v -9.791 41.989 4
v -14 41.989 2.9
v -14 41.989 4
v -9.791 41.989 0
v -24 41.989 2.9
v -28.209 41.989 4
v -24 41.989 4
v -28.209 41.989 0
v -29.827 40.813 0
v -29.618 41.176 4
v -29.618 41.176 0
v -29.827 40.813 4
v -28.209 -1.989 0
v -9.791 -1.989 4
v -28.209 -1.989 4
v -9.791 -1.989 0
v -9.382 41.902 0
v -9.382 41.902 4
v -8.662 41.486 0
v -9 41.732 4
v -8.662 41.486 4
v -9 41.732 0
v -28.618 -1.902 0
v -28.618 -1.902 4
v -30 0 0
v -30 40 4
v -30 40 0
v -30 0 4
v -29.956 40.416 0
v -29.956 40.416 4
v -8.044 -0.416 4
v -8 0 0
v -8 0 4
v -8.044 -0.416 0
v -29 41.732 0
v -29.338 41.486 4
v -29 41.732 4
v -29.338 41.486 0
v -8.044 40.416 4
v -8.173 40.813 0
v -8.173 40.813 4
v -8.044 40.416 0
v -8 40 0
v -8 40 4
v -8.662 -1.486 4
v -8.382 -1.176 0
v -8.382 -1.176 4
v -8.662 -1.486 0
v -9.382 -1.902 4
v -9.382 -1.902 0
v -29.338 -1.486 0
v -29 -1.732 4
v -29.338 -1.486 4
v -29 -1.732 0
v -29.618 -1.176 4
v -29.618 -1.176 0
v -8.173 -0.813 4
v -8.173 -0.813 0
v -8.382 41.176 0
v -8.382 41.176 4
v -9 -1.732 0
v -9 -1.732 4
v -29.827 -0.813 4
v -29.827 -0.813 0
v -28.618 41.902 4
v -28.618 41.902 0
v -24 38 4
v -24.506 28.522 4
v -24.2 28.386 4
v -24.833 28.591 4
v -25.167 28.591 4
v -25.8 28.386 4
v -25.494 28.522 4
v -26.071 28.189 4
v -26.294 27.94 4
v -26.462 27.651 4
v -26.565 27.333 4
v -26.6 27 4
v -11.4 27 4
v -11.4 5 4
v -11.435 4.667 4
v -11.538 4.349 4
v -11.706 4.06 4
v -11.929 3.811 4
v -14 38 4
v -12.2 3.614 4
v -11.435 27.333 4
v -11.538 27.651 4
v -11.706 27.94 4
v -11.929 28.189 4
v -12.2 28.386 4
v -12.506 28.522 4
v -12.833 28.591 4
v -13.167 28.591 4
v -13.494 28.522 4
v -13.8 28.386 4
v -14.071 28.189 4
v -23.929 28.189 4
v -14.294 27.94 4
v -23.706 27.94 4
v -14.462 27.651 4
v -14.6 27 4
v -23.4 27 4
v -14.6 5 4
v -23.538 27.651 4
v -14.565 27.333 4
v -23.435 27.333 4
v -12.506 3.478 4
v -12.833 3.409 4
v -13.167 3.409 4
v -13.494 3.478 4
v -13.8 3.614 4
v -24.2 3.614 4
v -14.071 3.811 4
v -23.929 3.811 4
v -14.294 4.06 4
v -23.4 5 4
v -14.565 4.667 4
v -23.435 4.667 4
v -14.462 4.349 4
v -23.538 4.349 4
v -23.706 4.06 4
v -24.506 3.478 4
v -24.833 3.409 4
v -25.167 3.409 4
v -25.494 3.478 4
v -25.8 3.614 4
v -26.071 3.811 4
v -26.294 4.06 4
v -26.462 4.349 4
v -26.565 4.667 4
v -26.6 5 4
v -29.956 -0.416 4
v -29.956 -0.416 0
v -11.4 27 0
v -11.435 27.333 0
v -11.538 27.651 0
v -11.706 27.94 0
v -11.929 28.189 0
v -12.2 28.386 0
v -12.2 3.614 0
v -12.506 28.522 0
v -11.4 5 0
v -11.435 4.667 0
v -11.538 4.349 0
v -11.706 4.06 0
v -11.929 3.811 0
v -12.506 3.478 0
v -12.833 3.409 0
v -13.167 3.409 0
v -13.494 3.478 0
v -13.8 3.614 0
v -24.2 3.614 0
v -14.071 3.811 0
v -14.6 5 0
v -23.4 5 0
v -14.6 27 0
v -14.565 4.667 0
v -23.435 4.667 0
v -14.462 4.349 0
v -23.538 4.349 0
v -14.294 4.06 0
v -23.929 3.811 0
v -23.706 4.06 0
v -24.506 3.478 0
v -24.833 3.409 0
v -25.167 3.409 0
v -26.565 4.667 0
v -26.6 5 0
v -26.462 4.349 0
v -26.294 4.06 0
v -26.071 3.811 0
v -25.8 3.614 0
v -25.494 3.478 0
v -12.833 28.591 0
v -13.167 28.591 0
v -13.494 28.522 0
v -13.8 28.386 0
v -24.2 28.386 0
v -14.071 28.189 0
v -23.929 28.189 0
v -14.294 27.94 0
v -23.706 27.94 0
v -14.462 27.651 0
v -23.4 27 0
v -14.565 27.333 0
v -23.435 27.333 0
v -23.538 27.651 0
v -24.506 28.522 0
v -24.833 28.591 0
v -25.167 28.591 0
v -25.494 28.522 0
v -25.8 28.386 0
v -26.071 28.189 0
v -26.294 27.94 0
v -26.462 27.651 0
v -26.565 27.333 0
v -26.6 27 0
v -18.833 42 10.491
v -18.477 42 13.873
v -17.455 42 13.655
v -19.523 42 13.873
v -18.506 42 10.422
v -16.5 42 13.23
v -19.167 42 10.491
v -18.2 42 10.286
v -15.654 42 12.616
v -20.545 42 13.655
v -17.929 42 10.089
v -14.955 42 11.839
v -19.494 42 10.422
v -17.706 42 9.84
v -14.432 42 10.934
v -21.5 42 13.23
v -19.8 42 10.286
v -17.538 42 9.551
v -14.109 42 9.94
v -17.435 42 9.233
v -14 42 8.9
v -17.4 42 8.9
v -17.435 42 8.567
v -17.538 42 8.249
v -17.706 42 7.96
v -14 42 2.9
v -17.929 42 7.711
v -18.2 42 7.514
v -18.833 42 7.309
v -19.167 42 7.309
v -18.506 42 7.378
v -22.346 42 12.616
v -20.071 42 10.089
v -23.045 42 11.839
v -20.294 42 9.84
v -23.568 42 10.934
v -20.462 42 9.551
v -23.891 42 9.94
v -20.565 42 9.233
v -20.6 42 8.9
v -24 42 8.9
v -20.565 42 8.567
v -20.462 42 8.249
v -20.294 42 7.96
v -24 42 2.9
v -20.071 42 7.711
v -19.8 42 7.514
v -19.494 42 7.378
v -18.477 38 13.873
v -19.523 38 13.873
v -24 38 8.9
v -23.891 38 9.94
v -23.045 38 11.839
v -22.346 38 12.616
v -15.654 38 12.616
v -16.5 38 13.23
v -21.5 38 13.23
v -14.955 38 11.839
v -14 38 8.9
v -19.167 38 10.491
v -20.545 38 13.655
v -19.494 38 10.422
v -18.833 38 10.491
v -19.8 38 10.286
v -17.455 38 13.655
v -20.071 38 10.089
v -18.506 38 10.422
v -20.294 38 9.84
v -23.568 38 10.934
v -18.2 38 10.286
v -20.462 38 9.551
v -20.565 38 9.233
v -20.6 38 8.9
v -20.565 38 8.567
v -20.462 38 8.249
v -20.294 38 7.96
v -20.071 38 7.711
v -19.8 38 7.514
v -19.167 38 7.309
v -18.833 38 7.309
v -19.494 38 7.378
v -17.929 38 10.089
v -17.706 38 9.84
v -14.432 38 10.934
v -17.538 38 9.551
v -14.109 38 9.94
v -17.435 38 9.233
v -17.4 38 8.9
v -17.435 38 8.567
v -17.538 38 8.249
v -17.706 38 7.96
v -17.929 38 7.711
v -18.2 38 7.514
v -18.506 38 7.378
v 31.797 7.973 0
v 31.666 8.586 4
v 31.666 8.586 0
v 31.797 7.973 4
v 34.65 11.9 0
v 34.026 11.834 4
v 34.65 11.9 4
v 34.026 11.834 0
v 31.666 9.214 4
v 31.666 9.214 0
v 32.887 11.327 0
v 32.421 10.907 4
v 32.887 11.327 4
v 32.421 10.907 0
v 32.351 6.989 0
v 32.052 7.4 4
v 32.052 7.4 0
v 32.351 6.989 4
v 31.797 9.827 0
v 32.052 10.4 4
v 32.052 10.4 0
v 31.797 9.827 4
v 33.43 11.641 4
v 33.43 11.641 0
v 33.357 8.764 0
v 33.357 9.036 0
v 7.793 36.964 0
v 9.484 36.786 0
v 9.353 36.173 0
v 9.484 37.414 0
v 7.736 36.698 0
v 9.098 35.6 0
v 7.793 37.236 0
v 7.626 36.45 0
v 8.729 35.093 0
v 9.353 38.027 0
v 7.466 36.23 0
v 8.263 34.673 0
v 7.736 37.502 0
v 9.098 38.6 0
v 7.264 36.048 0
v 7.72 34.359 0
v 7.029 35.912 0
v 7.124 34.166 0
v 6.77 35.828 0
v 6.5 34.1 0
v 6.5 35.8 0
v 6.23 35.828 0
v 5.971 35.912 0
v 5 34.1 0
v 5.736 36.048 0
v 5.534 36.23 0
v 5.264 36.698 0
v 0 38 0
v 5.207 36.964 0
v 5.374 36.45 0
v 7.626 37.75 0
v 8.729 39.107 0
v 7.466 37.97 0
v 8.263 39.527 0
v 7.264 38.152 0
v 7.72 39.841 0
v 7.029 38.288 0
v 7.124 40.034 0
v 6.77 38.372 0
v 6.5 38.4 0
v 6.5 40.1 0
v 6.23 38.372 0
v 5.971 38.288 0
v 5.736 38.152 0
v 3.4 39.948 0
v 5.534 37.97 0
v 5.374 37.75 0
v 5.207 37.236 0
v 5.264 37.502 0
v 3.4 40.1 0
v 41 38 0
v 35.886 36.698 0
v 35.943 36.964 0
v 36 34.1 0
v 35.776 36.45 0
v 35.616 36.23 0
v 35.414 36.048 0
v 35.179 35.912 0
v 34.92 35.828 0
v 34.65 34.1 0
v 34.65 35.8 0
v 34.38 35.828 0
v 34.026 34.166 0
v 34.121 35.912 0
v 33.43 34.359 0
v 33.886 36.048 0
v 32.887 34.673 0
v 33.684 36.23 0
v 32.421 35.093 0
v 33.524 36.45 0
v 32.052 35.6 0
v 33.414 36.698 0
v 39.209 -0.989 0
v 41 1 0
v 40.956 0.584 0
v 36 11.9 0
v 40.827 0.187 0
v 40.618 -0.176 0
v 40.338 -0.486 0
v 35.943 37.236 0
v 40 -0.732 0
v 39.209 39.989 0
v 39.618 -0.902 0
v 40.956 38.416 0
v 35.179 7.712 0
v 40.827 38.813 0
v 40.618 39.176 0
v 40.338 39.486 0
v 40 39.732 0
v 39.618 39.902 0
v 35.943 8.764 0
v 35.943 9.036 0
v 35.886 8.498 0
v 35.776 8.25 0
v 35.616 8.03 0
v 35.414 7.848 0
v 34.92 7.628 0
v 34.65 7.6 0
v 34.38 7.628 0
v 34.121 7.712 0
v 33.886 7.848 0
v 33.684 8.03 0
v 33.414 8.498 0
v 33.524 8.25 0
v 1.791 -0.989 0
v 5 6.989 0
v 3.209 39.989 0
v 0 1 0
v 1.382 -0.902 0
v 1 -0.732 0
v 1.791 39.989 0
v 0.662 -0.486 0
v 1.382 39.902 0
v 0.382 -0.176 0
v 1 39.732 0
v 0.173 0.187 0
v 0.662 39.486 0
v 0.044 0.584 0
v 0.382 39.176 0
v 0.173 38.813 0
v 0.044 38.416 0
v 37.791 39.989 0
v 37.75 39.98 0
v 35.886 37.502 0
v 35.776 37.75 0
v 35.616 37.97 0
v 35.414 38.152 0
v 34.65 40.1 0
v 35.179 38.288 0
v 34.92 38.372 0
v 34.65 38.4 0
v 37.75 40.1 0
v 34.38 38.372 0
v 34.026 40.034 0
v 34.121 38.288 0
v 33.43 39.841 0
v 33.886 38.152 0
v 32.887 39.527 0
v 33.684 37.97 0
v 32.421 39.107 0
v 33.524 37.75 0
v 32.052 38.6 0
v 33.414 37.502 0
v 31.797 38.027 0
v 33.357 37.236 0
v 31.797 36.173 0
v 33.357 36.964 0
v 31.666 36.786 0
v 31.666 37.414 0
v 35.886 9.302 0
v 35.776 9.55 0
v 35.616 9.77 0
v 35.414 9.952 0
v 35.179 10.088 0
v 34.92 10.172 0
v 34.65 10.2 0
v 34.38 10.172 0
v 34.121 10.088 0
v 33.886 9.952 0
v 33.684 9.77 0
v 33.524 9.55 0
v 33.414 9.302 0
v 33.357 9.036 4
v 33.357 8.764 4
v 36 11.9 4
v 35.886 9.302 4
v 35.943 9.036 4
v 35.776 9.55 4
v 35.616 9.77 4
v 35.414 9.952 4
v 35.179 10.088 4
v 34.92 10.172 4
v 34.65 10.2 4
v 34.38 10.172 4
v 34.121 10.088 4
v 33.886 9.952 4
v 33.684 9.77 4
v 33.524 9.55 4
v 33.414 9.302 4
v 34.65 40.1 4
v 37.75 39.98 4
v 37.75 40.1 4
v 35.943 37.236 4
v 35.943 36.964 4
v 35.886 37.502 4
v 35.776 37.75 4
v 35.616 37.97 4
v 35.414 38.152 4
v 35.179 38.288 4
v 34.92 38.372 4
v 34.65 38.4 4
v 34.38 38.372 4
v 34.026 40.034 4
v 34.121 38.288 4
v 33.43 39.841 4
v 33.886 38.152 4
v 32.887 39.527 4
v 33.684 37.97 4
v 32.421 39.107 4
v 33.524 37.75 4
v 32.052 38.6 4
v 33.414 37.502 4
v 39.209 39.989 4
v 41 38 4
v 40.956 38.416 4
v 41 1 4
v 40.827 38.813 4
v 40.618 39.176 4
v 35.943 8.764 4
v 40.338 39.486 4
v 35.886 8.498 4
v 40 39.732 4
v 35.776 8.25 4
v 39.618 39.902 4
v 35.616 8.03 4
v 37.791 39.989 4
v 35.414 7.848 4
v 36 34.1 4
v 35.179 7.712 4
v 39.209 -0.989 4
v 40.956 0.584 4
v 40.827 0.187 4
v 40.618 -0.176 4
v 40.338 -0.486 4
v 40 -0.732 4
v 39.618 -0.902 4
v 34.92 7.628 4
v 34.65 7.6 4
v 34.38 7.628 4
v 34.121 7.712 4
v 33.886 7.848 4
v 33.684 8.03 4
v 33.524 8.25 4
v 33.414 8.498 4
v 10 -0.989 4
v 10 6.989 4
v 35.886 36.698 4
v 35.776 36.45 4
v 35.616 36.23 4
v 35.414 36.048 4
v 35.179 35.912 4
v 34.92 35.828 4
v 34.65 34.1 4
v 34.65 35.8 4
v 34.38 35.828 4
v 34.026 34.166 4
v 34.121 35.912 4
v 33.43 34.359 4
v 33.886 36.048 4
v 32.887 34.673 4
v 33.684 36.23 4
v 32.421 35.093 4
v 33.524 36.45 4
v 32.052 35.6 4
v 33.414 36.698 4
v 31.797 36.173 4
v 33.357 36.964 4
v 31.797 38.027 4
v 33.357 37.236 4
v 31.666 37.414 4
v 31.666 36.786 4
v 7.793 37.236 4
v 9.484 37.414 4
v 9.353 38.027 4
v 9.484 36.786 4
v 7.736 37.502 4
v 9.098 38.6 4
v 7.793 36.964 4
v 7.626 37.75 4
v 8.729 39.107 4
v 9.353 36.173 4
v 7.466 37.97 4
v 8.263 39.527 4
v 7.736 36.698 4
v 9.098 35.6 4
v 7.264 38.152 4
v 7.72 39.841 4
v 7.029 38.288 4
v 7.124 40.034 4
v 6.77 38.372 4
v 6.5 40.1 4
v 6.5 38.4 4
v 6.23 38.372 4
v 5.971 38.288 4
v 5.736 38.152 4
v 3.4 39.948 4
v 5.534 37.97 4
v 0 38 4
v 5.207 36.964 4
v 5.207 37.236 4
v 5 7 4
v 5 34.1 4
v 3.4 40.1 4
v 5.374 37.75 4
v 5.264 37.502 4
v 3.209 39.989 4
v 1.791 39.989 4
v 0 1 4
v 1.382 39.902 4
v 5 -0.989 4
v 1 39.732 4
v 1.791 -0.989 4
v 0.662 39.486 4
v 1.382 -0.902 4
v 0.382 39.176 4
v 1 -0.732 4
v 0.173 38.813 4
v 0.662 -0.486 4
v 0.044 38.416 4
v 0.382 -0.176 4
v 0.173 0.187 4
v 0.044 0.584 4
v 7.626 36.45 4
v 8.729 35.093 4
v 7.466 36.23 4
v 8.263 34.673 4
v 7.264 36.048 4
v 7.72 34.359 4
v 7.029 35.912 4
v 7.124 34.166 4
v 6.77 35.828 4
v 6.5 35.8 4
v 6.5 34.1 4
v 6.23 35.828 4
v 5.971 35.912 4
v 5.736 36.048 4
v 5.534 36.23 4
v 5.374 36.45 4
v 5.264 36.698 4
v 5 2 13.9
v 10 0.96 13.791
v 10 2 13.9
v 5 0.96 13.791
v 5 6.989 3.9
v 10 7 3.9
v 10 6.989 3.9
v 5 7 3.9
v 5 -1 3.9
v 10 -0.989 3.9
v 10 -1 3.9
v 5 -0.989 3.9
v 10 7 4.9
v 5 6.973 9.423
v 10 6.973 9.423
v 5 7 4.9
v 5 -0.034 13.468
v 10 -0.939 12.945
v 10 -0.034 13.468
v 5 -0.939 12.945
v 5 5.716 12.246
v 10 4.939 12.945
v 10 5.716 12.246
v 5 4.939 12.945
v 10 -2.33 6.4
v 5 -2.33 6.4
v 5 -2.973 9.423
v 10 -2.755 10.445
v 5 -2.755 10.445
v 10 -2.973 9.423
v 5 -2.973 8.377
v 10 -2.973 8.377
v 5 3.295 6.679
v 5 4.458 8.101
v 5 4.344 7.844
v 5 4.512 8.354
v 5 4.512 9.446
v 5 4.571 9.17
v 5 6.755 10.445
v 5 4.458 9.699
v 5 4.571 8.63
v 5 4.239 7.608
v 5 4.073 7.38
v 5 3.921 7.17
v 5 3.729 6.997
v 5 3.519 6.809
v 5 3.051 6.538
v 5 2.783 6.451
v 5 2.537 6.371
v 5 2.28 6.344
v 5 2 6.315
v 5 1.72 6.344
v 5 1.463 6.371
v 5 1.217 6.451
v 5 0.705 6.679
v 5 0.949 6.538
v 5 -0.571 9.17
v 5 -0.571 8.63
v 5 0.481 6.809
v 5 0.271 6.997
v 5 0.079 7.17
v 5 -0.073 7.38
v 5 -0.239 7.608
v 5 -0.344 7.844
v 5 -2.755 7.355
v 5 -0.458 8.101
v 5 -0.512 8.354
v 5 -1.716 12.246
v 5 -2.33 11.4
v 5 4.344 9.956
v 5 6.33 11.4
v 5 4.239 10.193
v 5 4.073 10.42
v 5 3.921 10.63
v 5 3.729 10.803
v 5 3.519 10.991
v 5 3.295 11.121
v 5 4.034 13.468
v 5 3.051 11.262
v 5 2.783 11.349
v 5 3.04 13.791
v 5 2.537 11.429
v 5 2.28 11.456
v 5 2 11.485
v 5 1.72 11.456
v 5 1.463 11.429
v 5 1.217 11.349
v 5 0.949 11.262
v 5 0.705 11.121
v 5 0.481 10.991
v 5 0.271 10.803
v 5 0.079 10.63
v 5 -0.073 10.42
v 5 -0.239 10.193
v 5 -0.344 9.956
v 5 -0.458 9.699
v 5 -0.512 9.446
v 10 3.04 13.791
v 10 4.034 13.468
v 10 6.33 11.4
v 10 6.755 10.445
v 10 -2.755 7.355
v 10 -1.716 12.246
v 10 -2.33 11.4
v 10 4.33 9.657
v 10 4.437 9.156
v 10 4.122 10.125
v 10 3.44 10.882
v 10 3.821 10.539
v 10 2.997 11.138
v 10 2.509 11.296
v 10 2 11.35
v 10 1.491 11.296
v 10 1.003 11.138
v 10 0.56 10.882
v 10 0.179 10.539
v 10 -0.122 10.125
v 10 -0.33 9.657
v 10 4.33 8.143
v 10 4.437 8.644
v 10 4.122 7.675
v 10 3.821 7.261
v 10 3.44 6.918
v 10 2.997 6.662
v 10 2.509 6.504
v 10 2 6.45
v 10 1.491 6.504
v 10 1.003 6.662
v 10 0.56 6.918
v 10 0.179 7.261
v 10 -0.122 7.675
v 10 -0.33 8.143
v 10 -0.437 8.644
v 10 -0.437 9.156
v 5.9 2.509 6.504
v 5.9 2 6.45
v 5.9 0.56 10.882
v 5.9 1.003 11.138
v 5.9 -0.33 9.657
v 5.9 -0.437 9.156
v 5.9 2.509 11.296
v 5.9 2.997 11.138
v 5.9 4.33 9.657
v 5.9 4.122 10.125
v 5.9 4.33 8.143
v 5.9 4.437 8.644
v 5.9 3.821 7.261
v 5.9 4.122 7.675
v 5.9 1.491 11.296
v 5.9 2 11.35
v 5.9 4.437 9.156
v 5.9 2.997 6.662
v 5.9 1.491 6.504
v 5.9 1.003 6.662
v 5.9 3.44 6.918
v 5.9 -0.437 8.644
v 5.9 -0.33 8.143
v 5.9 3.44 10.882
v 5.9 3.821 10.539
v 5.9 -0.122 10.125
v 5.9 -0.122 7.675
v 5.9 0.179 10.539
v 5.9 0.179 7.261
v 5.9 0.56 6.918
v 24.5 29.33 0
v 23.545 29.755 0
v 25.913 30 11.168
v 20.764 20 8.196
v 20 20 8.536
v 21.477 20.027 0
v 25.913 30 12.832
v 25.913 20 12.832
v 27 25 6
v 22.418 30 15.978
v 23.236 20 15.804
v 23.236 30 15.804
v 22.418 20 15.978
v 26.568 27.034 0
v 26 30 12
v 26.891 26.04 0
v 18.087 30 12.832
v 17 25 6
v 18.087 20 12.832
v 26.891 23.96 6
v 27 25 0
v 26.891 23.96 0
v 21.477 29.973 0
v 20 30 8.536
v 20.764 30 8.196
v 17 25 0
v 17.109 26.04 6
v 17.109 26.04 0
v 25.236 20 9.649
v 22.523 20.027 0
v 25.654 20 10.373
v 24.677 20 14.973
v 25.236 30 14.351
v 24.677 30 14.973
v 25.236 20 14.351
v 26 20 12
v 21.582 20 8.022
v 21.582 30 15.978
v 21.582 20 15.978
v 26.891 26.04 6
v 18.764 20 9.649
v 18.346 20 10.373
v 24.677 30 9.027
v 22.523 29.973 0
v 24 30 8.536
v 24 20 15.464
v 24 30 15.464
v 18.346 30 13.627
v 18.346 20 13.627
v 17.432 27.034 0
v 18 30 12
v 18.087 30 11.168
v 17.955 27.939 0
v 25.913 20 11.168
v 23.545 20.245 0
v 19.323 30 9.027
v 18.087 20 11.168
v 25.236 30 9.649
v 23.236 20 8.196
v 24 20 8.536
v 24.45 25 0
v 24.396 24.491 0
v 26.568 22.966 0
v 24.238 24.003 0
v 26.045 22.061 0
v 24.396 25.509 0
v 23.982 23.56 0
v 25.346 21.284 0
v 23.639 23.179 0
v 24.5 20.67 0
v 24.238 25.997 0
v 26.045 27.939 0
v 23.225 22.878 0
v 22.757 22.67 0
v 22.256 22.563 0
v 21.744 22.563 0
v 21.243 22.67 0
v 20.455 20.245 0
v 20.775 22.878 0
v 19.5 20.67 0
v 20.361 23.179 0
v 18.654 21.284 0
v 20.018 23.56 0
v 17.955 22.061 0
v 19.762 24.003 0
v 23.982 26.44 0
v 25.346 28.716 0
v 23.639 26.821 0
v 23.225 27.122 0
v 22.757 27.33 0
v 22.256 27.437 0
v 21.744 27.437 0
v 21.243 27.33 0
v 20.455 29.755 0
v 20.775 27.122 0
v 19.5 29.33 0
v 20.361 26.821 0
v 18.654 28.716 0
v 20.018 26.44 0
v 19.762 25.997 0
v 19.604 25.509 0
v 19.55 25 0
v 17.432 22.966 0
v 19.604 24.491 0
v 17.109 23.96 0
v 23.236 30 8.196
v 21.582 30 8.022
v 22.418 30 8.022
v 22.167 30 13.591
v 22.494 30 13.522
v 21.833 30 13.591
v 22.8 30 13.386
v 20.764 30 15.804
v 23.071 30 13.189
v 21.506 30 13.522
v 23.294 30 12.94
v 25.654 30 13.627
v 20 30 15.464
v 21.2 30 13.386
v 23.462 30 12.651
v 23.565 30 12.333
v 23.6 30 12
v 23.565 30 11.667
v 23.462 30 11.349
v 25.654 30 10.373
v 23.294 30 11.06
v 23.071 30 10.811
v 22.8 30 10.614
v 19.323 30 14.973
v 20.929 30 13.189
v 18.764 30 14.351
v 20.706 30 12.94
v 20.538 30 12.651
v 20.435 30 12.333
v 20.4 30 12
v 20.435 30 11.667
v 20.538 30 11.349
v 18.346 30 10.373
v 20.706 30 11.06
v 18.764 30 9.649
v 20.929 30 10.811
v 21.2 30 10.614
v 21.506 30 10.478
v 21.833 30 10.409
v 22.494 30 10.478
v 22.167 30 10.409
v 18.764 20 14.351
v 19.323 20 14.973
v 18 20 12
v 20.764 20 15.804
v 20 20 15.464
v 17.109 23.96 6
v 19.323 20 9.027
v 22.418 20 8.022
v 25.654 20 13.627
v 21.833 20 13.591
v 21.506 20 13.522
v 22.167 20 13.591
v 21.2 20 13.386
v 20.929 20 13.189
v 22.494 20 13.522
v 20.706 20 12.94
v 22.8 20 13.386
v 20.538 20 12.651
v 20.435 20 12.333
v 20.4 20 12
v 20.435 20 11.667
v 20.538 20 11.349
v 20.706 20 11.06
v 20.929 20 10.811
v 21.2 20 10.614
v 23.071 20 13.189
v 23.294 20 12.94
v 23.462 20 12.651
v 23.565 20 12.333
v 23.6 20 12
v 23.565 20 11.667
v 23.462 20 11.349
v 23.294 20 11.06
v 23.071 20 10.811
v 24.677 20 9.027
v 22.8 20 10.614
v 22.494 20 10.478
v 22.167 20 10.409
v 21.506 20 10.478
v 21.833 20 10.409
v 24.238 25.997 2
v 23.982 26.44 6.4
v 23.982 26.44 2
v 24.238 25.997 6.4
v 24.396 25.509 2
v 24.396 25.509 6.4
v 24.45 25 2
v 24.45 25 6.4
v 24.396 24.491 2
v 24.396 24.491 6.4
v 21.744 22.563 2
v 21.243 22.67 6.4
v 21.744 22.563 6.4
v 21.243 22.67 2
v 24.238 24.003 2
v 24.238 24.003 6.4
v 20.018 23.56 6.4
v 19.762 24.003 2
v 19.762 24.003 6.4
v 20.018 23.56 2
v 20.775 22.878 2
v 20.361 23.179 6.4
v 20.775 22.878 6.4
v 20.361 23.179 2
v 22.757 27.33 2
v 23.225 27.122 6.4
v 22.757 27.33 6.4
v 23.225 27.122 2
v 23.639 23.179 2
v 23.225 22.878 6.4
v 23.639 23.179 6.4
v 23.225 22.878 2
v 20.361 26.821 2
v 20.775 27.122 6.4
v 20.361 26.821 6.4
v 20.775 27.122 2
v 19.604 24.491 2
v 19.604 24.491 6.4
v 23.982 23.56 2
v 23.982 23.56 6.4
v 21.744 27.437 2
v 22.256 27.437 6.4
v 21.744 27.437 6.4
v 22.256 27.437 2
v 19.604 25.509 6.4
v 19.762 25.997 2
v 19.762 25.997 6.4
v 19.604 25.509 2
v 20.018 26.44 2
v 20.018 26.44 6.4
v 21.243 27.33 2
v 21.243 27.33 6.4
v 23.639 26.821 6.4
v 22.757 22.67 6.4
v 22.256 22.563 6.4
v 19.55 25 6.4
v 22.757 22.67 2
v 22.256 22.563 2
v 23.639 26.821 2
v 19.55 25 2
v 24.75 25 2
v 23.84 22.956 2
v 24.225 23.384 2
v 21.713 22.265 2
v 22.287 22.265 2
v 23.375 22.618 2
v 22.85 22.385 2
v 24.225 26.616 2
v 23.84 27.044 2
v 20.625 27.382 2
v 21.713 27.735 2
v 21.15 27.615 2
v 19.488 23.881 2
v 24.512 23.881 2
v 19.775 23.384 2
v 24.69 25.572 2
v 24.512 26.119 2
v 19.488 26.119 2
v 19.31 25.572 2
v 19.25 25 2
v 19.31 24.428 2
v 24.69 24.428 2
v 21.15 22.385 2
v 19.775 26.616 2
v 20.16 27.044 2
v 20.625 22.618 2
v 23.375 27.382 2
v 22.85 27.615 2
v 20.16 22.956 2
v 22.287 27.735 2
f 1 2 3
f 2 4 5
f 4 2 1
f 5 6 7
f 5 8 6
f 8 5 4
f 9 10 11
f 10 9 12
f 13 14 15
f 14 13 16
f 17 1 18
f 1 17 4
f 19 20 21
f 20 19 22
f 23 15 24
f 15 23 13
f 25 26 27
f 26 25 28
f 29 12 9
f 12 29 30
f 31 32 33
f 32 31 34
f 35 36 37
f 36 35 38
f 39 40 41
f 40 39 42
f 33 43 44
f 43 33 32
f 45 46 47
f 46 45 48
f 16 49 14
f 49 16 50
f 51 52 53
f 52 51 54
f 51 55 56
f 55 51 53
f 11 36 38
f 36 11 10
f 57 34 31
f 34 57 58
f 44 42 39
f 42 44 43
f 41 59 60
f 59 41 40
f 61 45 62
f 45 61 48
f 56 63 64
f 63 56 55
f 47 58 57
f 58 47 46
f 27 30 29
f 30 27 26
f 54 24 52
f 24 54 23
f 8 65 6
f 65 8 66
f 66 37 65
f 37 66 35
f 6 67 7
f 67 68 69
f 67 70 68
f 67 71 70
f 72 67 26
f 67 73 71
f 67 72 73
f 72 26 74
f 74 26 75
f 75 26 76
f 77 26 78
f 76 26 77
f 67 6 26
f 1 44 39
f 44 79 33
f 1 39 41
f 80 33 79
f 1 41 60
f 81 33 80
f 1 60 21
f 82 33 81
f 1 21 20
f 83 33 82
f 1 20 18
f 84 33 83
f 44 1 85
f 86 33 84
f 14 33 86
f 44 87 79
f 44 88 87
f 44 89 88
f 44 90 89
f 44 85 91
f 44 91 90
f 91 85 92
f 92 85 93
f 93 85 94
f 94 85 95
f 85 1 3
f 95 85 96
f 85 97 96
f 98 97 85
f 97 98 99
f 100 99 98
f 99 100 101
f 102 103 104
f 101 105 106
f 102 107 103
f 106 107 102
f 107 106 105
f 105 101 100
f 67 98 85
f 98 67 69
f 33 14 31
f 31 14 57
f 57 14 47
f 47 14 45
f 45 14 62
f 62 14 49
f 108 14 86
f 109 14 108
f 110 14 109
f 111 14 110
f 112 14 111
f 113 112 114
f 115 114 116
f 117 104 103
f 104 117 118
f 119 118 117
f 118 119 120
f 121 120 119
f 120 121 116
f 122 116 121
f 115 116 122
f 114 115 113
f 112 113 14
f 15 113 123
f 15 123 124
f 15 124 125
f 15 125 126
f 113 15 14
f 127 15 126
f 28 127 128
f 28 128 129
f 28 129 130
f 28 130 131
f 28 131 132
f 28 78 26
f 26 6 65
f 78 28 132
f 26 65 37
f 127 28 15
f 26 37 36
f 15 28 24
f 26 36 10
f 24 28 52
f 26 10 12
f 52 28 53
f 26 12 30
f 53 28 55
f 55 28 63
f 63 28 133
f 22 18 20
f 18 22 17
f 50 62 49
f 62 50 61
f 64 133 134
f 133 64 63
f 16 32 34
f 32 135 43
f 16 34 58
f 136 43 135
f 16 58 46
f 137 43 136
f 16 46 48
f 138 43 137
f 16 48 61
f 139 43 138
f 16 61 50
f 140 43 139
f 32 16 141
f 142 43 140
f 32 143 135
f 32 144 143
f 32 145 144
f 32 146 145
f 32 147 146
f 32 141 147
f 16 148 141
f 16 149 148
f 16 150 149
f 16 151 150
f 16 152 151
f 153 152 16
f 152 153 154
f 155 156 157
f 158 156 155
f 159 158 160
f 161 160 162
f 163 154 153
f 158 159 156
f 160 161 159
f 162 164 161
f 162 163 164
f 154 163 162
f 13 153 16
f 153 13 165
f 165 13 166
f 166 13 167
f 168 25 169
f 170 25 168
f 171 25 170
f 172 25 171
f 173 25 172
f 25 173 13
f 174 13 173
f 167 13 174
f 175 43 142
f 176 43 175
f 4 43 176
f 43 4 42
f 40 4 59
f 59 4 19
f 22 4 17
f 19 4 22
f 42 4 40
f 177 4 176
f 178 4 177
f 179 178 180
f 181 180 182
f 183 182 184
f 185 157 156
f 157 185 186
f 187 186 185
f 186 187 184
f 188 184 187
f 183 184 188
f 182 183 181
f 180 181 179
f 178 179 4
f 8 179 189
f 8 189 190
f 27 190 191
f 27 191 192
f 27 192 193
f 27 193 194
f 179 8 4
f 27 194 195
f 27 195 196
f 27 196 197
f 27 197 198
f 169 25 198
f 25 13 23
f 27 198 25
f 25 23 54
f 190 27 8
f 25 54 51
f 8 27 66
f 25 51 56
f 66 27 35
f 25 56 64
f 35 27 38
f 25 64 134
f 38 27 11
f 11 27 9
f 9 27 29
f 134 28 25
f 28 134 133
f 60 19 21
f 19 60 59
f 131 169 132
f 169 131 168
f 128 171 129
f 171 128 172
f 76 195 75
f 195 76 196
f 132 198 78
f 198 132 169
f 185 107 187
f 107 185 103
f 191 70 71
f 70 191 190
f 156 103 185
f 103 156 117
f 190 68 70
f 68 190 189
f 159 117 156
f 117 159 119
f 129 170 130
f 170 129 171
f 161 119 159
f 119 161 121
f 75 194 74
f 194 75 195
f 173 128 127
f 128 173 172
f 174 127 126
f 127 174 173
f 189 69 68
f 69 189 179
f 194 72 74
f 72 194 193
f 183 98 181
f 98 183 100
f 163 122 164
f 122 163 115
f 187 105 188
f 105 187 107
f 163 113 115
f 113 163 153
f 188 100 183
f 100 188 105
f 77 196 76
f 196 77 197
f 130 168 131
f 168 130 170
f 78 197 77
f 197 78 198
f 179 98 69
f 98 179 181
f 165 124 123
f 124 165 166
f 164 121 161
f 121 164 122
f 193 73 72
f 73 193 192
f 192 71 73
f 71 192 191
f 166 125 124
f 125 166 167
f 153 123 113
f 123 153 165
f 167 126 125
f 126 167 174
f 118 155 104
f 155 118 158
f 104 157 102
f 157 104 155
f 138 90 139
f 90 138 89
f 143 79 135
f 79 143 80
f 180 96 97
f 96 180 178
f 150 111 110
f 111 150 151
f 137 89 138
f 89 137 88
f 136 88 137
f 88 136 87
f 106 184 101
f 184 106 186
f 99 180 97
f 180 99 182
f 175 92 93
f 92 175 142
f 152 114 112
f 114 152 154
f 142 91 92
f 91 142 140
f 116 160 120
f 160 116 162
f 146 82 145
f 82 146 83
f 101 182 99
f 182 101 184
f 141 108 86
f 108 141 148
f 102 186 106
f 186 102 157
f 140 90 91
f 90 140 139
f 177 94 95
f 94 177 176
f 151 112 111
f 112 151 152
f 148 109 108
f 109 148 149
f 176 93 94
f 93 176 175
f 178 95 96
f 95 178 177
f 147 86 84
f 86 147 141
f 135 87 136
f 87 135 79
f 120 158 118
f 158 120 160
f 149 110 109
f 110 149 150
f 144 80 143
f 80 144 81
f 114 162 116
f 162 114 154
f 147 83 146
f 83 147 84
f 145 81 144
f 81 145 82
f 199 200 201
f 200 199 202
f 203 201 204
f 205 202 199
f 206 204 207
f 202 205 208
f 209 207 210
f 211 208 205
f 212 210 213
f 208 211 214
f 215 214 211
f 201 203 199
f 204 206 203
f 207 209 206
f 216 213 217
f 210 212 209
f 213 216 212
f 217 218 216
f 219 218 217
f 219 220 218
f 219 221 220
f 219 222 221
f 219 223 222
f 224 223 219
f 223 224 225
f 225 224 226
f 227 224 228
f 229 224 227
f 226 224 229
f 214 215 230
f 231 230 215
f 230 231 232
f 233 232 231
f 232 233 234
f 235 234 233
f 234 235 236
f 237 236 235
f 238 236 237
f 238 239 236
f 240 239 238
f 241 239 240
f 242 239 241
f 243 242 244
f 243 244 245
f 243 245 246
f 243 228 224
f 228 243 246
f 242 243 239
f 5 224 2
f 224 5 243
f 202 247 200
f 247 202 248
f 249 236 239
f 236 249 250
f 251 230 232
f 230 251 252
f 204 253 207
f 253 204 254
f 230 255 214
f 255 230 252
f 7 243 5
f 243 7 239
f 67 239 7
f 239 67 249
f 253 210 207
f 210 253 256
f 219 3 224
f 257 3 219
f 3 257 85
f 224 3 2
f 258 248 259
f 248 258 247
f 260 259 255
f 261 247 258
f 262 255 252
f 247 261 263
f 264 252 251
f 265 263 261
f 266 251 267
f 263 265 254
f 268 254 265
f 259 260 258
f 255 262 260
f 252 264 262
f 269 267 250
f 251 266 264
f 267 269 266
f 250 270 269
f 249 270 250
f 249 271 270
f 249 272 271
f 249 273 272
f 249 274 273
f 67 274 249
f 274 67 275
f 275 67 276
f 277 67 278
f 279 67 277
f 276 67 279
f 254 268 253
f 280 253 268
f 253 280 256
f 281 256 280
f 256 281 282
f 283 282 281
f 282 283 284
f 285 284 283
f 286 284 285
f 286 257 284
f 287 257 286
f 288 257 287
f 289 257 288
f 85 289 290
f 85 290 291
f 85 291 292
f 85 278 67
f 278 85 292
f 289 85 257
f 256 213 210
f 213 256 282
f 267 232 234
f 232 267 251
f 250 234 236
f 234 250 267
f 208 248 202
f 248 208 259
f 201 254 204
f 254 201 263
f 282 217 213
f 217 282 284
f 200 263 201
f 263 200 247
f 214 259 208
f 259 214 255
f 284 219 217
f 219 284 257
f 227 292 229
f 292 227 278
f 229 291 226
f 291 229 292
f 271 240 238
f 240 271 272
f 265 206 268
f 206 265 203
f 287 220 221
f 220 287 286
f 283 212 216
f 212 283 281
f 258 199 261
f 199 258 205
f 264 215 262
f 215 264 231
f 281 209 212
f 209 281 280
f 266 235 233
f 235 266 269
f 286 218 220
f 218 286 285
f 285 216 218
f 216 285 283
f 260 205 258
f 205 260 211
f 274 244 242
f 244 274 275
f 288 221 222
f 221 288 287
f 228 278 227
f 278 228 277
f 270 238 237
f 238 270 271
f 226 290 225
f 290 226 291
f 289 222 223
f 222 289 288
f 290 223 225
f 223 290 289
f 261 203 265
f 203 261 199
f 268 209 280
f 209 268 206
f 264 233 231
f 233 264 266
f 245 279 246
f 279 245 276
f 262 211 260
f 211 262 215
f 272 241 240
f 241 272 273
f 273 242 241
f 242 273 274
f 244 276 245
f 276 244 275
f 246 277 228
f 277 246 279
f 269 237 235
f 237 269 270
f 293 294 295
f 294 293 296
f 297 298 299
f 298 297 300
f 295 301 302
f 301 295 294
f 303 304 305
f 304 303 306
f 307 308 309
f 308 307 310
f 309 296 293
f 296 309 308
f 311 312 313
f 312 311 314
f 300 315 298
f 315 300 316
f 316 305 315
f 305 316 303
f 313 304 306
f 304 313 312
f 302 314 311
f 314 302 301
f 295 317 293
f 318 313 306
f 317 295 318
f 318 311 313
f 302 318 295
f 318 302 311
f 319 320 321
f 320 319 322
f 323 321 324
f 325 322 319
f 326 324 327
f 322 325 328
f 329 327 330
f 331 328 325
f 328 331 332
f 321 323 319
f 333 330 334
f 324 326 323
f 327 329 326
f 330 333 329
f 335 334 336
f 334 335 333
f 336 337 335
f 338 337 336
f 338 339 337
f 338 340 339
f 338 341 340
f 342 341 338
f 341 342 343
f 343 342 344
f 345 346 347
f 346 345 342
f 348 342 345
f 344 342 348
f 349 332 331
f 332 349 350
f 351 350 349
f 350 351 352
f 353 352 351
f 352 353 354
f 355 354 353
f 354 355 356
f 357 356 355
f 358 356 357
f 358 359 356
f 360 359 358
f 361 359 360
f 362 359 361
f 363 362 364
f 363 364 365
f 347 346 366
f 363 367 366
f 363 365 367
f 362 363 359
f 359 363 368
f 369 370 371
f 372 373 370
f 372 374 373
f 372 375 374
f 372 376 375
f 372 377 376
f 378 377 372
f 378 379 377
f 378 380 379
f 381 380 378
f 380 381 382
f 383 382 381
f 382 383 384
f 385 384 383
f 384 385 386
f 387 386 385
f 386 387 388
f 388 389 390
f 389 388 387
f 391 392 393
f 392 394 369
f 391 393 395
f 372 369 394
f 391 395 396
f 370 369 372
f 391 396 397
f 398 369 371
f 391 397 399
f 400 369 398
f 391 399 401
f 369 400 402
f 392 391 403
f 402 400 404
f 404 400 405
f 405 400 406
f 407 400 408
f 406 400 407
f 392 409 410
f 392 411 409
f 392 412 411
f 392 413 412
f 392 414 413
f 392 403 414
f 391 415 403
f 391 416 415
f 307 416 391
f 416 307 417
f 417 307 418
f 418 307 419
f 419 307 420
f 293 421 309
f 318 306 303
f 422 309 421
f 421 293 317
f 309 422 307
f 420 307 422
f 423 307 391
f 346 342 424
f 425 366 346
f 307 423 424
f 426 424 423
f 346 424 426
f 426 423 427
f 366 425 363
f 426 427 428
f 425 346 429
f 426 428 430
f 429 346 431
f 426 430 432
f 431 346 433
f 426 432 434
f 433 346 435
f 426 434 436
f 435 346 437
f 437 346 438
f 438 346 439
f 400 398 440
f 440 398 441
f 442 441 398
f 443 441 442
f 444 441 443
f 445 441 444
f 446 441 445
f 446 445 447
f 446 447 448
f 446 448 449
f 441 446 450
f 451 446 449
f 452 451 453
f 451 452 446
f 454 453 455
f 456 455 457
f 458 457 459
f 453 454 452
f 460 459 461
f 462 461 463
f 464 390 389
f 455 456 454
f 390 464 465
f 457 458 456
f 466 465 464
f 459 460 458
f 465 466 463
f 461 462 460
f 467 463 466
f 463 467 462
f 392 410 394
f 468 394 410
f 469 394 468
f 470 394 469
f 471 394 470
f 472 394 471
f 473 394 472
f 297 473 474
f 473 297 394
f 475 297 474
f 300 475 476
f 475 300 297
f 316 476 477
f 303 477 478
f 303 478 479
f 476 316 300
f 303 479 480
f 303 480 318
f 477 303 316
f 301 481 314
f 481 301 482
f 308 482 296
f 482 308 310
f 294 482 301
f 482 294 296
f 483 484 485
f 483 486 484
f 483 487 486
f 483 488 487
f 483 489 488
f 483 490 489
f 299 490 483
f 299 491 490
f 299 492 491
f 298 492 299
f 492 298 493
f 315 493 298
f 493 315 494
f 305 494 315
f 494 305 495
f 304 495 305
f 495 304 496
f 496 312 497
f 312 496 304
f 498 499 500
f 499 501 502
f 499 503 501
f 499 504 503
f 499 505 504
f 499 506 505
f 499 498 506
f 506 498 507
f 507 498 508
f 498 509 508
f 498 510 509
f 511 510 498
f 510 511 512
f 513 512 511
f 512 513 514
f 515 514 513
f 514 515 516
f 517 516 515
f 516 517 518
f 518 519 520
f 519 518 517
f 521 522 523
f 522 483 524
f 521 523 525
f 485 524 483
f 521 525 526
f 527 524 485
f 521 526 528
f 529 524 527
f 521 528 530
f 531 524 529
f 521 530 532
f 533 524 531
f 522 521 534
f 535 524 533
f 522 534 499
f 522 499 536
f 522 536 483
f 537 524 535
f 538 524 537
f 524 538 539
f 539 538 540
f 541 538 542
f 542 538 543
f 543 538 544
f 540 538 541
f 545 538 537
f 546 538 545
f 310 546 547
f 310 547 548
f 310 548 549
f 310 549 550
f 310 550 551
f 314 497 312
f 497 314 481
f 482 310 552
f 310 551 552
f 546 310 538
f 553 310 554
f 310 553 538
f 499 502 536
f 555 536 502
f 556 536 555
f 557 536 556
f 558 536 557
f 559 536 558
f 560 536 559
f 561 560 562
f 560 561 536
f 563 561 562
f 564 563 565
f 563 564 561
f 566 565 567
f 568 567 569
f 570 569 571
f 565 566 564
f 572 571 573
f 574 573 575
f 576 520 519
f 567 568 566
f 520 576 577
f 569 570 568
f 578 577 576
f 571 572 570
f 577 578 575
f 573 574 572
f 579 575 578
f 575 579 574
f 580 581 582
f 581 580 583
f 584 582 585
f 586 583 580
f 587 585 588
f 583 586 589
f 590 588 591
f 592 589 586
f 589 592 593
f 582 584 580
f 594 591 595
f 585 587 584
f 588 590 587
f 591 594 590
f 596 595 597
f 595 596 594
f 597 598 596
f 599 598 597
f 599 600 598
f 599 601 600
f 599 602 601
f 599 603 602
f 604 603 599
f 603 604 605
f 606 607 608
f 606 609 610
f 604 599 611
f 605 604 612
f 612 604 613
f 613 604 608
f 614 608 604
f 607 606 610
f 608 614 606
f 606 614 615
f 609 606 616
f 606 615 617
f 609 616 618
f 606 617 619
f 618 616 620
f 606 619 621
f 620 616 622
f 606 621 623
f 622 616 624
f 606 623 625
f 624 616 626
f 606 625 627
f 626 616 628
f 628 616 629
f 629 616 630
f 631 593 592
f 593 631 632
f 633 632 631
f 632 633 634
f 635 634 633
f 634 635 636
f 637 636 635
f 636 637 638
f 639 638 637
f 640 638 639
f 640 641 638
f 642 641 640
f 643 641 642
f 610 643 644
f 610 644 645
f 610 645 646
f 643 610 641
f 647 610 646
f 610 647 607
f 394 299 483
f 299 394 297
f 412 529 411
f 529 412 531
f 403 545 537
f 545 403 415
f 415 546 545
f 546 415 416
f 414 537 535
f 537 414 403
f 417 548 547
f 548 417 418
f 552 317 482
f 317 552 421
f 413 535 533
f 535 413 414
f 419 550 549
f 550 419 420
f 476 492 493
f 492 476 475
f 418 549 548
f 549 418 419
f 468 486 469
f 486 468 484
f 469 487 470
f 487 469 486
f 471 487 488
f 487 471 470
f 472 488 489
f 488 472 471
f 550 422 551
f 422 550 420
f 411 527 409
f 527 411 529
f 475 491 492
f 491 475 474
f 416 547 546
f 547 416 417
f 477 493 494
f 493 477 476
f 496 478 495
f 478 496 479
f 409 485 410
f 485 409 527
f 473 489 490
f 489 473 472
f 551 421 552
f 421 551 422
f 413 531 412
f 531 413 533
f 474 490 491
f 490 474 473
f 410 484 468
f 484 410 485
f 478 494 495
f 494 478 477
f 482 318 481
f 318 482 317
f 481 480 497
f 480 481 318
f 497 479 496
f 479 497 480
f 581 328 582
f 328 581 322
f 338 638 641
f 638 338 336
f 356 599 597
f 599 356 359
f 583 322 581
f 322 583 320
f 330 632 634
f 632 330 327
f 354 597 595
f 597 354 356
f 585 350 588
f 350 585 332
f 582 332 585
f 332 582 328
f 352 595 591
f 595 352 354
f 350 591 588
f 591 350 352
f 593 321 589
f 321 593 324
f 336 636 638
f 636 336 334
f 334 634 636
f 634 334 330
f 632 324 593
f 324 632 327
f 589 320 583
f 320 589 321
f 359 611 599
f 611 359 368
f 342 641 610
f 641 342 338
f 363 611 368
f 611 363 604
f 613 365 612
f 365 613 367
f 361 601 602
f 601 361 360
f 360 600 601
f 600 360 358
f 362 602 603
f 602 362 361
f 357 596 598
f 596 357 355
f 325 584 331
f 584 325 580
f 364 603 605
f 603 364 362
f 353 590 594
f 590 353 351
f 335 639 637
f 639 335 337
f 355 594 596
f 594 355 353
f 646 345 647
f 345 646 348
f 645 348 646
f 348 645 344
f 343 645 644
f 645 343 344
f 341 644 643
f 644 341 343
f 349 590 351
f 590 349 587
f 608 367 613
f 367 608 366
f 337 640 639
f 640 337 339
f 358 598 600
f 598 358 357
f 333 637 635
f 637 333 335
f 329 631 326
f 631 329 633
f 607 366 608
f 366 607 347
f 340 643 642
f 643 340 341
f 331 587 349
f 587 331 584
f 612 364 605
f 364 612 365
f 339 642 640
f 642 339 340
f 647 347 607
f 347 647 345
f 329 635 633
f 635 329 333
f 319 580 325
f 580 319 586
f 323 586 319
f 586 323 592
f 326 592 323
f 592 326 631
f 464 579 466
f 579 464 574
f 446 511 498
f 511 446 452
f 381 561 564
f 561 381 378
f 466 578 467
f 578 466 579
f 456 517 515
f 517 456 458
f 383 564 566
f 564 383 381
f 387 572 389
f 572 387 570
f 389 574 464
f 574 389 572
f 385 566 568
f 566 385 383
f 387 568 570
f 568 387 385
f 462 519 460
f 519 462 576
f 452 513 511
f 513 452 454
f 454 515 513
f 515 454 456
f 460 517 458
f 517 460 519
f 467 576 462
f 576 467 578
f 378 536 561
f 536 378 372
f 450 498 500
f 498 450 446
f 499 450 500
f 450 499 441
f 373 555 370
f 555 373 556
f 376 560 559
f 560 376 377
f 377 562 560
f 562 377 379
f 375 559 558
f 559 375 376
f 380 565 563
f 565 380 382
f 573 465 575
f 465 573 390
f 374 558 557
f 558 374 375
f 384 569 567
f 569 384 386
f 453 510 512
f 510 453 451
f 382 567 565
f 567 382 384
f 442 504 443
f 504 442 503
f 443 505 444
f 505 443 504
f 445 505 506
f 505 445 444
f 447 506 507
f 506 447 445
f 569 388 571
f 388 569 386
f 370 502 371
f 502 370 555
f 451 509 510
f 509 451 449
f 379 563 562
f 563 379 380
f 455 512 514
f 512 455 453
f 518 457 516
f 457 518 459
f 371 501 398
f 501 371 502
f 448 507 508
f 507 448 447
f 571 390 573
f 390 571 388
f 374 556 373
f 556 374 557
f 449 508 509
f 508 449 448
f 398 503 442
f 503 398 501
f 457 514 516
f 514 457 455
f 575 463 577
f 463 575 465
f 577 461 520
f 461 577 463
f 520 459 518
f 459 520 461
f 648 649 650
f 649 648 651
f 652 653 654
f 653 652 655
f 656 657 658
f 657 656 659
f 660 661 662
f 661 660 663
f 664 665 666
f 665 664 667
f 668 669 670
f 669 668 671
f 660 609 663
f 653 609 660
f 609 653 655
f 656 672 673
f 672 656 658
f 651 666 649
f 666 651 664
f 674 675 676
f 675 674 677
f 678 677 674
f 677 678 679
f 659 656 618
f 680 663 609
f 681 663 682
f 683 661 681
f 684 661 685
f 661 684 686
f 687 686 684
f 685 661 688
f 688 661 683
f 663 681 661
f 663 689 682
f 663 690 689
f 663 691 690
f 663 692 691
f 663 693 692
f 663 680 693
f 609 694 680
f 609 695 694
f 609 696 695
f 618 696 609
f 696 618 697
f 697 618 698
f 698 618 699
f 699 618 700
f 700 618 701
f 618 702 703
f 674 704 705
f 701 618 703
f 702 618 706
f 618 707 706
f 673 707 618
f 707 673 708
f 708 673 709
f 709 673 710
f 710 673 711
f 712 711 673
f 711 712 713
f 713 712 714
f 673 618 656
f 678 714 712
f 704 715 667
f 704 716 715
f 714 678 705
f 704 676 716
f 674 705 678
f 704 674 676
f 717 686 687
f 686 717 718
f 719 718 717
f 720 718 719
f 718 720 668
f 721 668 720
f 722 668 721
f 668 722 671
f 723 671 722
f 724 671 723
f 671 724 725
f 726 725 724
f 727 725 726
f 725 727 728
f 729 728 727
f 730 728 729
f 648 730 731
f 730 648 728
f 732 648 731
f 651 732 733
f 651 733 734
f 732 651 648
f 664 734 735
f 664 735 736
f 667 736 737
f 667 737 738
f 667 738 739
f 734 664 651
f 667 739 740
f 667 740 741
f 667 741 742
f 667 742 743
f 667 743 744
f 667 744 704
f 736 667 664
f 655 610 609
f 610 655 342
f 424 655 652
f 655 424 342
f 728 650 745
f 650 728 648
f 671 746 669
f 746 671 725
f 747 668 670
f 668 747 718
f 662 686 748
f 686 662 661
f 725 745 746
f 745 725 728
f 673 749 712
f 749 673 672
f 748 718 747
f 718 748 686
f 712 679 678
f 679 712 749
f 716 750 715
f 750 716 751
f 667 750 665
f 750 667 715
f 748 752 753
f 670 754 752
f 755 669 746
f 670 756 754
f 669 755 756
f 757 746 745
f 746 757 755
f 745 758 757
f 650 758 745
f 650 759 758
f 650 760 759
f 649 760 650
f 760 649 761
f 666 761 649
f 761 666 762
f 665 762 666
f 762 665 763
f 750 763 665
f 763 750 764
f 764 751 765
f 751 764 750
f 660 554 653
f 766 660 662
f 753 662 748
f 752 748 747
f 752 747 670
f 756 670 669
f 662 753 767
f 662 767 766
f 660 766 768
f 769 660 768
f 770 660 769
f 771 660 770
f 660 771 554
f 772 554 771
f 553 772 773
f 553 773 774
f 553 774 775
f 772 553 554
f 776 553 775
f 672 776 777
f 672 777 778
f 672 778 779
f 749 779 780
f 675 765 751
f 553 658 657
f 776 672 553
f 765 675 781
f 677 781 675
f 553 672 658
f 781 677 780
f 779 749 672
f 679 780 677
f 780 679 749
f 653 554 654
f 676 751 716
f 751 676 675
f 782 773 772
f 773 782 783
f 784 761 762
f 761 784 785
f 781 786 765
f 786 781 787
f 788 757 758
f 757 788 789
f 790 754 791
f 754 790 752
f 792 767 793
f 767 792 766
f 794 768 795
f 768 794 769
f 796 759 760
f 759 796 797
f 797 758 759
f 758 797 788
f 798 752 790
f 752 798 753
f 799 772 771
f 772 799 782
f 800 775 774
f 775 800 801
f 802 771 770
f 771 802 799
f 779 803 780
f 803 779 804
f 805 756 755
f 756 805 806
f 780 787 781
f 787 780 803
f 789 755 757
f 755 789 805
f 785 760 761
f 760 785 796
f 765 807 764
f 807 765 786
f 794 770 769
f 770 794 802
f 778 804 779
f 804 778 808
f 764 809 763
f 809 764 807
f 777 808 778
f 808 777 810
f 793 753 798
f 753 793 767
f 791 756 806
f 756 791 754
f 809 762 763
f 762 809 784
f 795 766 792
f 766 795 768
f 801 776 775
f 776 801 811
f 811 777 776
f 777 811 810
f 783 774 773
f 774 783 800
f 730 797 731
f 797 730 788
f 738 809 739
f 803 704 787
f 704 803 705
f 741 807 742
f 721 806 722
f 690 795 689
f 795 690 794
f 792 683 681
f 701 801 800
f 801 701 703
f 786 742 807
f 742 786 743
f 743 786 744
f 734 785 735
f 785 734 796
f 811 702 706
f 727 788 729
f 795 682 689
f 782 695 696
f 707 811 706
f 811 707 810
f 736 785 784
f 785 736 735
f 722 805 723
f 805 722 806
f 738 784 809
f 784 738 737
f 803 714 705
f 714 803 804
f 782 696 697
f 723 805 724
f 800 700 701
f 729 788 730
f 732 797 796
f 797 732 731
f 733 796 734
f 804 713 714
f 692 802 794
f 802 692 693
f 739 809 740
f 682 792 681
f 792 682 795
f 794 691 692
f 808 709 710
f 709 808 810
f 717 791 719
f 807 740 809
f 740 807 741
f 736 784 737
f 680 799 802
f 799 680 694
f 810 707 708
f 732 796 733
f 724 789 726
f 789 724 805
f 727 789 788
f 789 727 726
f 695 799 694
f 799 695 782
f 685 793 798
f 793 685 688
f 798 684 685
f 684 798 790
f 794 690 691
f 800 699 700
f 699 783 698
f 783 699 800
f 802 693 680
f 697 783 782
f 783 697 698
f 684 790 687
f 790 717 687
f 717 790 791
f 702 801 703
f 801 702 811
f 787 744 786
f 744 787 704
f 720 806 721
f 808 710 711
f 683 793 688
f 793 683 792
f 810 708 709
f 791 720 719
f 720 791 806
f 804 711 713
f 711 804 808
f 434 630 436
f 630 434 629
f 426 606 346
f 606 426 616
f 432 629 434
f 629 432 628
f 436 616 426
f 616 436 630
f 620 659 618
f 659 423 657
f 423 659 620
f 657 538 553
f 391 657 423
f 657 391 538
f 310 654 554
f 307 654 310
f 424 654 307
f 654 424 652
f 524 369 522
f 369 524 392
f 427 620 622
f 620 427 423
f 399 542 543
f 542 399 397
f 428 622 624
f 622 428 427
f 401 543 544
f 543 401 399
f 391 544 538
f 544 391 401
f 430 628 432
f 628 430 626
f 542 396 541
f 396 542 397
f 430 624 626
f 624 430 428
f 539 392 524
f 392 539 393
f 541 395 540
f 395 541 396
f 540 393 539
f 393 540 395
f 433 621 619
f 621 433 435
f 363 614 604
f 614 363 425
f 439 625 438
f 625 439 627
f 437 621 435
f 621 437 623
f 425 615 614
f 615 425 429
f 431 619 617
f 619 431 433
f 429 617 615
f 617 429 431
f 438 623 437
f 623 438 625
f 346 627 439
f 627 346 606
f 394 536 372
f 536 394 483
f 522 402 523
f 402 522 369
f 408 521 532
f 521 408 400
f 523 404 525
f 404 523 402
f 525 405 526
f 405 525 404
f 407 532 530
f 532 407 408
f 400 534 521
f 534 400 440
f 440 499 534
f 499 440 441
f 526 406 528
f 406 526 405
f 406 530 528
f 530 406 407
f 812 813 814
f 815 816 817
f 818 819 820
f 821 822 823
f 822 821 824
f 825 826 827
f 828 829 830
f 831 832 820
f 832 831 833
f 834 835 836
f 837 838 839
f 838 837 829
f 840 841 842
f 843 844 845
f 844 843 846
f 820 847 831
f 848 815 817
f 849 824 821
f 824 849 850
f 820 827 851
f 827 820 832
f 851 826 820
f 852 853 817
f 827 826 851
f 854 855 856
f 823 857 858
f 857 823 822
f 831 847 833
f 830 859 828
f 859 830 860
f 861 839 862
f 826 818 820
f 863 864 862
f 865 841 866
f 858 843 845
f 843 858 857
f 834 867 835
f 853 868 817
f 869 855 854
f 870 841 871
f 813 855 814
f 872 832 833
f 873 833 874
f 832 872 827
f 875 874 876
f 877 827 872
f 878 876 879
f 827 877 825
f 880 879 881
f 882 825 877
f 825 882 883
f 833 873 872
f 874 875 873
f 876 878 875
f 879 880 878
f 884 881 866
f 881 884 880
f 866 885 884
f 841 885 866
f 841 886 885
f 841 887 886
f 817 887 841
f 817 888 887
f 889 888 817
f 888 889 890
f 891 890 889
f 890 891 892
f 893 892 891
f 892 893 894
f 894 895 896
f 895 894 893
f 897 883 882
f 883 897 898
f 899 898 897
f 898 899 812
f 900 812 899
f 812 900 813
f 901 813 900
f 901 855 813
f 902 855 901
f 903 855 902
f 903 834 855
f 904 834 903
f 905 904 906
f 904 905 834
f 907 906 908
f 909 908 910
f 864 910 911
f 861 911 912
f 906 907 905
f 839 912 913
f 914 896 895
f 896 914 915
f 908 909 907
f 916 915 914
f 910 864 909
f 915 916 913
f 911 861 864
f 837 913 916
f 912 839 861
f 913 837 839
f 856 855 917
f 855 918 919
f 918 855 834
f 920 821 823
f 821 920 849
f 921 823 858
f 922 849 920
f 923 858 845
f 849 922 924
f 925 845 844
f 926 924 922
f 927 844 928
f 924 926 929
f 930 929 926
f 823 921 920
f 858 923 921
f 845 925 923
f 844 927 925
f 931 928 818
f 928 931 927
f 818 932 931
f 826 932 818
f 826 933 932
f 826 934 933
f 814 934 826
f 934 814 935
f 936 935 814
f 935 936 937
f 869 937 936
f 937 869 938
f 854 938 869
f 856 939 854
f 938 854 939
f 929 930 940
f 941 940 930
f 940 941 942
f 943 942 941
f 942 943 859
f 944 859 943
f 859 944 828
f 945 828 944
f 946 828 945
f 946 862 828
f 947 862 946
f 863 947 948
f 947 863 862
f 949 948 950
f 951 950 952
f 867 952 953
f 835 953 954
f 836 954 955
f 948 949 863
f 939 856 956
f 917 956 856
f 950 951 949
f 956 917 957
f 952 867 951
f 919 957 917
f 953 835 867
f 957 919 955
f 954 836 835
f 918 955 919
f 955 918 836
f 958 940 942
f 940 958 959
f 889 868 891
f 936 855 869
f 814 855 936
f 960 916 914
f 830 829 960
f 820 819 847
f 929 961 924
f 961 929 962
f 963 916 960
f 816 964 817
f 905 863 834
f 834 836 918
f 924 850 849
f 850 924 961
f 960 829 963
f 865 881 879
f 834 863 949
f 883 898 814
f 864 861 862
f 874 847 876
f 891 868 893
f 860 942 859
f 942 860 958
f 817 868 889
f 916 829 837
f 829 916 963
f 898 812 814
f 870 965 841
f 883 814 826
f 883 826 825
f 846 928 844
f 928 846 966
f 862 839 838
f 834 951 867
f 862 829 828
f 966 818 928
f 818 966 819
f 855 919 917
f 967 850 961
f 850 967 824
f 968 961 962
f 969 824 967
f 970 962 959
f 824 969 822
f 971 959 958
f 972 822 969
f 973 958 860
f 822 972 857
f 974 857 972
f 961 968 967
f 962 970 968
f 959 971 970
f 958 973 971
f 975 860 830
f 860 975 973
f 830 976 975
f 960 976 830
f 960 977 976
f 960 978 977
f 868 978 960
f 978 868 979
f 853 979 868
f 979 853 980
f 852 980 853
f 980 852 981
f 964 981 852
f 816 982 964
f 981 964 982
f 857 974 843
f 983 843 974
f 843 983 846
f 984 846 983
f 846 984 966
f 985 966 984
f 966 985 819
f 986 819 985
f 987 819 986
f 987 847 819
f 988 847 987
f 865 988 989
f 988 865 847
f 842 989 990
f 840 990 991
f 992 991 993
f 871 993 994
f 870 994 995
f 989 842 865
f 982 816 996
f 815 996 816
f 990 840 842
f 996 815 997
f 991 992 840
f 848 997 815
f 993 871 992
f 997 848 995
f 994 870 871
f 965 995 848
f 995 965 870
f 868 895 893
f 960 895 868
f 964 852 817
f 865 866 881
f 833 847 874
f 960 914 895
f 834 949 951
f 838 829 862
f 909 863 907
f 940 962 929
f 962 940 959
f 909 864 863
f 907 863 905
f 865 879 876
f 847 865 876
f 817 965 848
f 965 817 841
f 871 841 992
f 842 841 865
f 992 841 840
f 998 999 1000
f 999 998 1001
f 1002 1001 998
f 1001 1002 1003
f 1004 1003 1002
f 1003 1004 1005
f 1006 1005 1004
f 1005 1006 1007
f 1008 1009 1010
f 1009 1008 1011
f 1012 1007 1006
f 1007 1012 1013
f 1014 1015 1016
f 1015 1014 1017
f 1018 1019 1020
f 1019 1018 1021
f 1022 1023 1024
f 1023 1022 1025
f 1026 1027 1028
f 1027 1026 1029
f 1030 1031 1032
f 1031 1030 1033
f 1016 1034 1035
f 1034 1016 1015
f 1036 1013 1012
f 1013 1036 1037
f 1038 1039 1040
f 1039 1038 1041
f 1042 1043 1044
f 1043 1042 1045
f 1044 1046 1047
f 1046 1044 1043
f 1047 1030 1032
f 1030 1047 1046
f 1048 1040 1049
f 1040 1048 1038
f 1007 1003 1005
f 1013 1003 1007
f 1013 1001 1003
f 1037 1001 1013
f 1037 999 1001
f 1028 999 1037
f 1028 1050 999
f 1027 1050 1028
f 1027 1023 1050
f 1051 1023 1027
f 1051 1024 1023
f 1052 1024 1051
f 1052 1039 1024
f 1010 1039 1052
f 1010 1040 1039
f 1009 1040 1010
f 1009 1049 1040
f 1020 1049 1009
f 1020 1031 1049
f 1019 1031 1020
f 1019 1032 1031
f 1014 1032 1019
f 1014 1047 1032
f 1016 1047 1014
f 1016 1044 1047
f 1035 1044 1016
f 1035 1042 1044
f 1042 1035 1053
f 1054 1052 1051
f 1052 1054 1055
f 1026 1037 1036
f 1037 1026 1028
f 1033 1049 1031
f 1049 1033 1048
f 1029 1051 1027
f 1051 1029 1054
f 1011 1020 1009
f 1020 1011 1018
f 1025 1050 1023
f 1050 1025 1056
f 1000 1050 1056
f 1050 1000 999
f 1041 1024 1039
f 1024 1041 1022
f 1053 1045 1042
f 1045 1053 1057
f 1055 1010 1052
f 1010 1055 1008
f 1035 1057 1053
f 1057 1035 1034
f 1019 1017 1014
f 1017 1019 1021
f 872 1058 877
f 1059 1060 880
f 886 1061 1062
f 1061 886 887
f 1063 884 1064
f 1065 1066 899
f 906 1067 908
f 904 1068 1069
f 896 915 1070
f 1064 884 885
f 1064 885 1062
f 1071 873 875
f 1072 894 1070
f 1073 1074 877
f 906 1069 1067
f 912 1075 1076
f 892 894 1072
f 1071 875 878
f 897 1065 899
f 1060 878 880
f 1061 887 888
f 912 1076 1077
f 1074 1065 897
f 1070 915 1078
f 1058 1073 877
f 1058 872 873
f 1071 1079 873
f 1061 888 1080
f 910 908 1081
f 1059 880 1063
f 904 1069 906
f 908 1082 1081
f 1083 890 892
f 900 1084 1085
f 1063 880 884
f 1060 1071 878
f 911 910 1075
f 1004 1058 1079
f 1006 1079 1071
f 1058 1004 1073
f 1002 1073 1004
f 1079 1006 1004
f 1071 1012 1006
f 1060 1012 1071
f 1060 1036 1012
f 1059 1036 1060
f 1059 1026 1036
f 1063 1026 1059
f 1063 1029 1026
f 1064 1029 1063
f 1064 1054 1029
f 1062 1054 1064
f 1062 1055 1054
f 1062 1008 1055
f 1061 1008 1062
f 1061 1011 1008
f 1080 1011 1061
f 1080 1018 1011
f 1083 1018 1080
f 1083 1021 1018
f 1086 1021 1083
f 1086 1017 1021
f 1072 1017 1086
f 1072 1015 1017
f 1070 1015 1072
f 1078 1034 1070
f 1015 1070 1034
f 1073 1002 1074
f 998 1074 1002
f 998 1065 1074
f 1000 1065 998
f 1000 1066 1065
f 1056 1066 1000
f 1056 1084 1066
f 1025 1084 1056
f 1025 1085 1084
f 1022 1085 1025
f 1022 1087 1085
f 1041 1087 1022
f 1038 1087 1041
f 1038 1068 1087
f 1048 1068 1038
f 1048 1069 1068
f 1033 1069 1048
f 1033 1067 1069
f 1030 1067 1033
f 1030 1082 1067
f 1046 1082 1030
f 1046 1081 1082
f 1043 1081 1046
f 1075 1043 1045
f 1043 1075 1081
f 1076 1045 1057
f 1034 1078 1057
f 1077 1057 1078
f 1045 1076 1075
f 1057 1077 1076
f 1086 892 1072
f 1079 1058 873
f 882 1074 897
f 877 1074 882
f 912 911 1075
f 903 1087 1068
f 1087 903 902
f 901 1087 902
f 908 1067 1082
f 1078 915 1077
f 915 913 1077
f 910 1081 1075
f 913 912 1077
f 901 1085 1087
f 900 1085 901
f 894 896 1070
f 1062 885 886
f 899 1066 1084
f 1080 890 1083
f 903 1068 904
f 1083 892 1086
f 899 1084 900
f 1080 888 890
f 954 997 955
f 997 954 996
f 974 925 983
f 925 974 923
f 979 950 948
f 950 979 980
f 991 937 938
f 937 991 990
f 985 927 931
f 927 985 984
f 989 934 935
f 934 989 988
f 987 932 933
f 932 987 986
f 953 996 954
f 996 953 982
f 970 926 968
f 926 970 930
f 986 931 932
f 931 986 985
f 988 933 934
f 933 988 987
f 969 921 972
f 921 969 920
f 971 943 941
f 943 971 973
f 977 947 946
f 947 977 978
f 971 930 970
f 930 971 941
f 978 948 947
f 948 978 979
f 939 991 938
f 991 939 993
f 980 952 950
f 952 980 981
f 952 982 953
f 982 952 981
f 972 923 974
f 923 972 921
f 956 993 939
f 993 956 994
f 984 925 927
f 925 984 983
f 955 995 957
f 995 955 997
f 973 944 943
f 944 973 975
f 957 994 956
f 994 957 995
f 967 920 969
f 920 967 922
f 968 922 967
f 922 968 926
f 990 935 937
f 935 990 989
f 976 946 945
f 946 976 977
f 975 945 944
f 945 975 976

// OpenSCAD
// width=35;
// height=35;

$fn=30;

// heat set M3 nut is 5mm diameter and 4mm thick/high

translate([-30,30,0]) frameMount();
cameraMount();

translate([22,25,0]) connector();

module cameraMount(depth=4) {
   translate([0,-1,0]) plate(width=41,height=8,depth=depth);
   translate([0,0,0]) plate(width=5,height=40,depth=depth);
   translate([36,0,0]) plate(width=5,height=40,depth=depth);

   translate([34.65,8.9,0])rotate([0,0,-90]) smallHole();
   translate([6.5,37.1,0]) rotate([0,0,90]) smallHole();
   translate([34.65,37.1,0])rotate([0,0,-90]) smallHole();

   translate([10,4,5+depth-0.1]) rotate([0,-90,0]) difference() {
      hull() {
         translate([0,-2,0]) cylinder(d=10,h=5);
         translate([-5,-5,0]) cube([1,8,5]);
      }
      translate([0,-2,-1]) cylinder(d=4.9,h=10);
      translate([0,-2,4.1]) cylinder(d1=4.9,d2=5.5,h=2);
   }
}

module connector() {
   difference() {
      hull() {
         cylinder(d=10,h=6);
         translate([0,0,12]) rotate([90,0,0]) translate([0,0,-5]) cylinder(h=10,d=8);
      }
      translate([0,0,-0.1]) cylinder(d=4.9,h=6.5);
      translate([0,0,0]) cylinder(d1=4.9,d2=5.5,h=2);
      translate([0,0,12]) rotate([90,0,0]) translate([0,0,-6]) cylinder(h=12,d=3.2);
   }
}

module smallHole() {
   difference() {
      union() {
         cylinder(h=4,r=3);
         translate([-3,0,0]) cube([6,3.1,4]);
      }
      translate([0,0,-0.05]) cylinder(h=4.1,r=1.3);
   }
}

/* plate() -- base of the mounting plate
 */
module plate(width=35,height=35,depth=4) {
   hull() {
      translate([2,2,0]) cylinder(r=2,h=depth);
      translate([width-2,2,0]) cylinder(r=2,h=depth);
      translate([2,height-2,0]) cylinder(r=2,h=depth);
      translate([width-2,height-2,0]) cylinder(r=2,h=depth);
   }
}

module frameMount(depth=4) {
   difference() {
      hull() {
         translate([2,10,0]) cylinder(r=2,h=depth);
         translate([2,-30,0]) cylinder(r=2,h=depth);
         translate([20,-30,0]) cylinder(r=2,h=depth);
         translate([20,10,0]) cylinder(r=2,h=depth);
      }
      hull() {
         translate([5,-3,-1]) cylinder(d=3.2, h=depth+2);
         translate([5,-25,-1]) cylinder(d=3.2, h=depth+2);
      }
      hull() {
         translate([17,-3,-1]) cylinder(d=3.2, h=depth+2);
         translate([17,-25,-1]) cylinder(d=3.2, h=depth+2);
      }
   }

   translate([11,12,5+depth-0.1]) rotate([90,0,0]) difference() {
      hull() {
         cylinder(d=10,h=4);
         translate([-5,-6,0]) cube([10,1,4]);
      }
      translate([0,0,-1]) cylinder(d=3.2,h=10);
   }
}
